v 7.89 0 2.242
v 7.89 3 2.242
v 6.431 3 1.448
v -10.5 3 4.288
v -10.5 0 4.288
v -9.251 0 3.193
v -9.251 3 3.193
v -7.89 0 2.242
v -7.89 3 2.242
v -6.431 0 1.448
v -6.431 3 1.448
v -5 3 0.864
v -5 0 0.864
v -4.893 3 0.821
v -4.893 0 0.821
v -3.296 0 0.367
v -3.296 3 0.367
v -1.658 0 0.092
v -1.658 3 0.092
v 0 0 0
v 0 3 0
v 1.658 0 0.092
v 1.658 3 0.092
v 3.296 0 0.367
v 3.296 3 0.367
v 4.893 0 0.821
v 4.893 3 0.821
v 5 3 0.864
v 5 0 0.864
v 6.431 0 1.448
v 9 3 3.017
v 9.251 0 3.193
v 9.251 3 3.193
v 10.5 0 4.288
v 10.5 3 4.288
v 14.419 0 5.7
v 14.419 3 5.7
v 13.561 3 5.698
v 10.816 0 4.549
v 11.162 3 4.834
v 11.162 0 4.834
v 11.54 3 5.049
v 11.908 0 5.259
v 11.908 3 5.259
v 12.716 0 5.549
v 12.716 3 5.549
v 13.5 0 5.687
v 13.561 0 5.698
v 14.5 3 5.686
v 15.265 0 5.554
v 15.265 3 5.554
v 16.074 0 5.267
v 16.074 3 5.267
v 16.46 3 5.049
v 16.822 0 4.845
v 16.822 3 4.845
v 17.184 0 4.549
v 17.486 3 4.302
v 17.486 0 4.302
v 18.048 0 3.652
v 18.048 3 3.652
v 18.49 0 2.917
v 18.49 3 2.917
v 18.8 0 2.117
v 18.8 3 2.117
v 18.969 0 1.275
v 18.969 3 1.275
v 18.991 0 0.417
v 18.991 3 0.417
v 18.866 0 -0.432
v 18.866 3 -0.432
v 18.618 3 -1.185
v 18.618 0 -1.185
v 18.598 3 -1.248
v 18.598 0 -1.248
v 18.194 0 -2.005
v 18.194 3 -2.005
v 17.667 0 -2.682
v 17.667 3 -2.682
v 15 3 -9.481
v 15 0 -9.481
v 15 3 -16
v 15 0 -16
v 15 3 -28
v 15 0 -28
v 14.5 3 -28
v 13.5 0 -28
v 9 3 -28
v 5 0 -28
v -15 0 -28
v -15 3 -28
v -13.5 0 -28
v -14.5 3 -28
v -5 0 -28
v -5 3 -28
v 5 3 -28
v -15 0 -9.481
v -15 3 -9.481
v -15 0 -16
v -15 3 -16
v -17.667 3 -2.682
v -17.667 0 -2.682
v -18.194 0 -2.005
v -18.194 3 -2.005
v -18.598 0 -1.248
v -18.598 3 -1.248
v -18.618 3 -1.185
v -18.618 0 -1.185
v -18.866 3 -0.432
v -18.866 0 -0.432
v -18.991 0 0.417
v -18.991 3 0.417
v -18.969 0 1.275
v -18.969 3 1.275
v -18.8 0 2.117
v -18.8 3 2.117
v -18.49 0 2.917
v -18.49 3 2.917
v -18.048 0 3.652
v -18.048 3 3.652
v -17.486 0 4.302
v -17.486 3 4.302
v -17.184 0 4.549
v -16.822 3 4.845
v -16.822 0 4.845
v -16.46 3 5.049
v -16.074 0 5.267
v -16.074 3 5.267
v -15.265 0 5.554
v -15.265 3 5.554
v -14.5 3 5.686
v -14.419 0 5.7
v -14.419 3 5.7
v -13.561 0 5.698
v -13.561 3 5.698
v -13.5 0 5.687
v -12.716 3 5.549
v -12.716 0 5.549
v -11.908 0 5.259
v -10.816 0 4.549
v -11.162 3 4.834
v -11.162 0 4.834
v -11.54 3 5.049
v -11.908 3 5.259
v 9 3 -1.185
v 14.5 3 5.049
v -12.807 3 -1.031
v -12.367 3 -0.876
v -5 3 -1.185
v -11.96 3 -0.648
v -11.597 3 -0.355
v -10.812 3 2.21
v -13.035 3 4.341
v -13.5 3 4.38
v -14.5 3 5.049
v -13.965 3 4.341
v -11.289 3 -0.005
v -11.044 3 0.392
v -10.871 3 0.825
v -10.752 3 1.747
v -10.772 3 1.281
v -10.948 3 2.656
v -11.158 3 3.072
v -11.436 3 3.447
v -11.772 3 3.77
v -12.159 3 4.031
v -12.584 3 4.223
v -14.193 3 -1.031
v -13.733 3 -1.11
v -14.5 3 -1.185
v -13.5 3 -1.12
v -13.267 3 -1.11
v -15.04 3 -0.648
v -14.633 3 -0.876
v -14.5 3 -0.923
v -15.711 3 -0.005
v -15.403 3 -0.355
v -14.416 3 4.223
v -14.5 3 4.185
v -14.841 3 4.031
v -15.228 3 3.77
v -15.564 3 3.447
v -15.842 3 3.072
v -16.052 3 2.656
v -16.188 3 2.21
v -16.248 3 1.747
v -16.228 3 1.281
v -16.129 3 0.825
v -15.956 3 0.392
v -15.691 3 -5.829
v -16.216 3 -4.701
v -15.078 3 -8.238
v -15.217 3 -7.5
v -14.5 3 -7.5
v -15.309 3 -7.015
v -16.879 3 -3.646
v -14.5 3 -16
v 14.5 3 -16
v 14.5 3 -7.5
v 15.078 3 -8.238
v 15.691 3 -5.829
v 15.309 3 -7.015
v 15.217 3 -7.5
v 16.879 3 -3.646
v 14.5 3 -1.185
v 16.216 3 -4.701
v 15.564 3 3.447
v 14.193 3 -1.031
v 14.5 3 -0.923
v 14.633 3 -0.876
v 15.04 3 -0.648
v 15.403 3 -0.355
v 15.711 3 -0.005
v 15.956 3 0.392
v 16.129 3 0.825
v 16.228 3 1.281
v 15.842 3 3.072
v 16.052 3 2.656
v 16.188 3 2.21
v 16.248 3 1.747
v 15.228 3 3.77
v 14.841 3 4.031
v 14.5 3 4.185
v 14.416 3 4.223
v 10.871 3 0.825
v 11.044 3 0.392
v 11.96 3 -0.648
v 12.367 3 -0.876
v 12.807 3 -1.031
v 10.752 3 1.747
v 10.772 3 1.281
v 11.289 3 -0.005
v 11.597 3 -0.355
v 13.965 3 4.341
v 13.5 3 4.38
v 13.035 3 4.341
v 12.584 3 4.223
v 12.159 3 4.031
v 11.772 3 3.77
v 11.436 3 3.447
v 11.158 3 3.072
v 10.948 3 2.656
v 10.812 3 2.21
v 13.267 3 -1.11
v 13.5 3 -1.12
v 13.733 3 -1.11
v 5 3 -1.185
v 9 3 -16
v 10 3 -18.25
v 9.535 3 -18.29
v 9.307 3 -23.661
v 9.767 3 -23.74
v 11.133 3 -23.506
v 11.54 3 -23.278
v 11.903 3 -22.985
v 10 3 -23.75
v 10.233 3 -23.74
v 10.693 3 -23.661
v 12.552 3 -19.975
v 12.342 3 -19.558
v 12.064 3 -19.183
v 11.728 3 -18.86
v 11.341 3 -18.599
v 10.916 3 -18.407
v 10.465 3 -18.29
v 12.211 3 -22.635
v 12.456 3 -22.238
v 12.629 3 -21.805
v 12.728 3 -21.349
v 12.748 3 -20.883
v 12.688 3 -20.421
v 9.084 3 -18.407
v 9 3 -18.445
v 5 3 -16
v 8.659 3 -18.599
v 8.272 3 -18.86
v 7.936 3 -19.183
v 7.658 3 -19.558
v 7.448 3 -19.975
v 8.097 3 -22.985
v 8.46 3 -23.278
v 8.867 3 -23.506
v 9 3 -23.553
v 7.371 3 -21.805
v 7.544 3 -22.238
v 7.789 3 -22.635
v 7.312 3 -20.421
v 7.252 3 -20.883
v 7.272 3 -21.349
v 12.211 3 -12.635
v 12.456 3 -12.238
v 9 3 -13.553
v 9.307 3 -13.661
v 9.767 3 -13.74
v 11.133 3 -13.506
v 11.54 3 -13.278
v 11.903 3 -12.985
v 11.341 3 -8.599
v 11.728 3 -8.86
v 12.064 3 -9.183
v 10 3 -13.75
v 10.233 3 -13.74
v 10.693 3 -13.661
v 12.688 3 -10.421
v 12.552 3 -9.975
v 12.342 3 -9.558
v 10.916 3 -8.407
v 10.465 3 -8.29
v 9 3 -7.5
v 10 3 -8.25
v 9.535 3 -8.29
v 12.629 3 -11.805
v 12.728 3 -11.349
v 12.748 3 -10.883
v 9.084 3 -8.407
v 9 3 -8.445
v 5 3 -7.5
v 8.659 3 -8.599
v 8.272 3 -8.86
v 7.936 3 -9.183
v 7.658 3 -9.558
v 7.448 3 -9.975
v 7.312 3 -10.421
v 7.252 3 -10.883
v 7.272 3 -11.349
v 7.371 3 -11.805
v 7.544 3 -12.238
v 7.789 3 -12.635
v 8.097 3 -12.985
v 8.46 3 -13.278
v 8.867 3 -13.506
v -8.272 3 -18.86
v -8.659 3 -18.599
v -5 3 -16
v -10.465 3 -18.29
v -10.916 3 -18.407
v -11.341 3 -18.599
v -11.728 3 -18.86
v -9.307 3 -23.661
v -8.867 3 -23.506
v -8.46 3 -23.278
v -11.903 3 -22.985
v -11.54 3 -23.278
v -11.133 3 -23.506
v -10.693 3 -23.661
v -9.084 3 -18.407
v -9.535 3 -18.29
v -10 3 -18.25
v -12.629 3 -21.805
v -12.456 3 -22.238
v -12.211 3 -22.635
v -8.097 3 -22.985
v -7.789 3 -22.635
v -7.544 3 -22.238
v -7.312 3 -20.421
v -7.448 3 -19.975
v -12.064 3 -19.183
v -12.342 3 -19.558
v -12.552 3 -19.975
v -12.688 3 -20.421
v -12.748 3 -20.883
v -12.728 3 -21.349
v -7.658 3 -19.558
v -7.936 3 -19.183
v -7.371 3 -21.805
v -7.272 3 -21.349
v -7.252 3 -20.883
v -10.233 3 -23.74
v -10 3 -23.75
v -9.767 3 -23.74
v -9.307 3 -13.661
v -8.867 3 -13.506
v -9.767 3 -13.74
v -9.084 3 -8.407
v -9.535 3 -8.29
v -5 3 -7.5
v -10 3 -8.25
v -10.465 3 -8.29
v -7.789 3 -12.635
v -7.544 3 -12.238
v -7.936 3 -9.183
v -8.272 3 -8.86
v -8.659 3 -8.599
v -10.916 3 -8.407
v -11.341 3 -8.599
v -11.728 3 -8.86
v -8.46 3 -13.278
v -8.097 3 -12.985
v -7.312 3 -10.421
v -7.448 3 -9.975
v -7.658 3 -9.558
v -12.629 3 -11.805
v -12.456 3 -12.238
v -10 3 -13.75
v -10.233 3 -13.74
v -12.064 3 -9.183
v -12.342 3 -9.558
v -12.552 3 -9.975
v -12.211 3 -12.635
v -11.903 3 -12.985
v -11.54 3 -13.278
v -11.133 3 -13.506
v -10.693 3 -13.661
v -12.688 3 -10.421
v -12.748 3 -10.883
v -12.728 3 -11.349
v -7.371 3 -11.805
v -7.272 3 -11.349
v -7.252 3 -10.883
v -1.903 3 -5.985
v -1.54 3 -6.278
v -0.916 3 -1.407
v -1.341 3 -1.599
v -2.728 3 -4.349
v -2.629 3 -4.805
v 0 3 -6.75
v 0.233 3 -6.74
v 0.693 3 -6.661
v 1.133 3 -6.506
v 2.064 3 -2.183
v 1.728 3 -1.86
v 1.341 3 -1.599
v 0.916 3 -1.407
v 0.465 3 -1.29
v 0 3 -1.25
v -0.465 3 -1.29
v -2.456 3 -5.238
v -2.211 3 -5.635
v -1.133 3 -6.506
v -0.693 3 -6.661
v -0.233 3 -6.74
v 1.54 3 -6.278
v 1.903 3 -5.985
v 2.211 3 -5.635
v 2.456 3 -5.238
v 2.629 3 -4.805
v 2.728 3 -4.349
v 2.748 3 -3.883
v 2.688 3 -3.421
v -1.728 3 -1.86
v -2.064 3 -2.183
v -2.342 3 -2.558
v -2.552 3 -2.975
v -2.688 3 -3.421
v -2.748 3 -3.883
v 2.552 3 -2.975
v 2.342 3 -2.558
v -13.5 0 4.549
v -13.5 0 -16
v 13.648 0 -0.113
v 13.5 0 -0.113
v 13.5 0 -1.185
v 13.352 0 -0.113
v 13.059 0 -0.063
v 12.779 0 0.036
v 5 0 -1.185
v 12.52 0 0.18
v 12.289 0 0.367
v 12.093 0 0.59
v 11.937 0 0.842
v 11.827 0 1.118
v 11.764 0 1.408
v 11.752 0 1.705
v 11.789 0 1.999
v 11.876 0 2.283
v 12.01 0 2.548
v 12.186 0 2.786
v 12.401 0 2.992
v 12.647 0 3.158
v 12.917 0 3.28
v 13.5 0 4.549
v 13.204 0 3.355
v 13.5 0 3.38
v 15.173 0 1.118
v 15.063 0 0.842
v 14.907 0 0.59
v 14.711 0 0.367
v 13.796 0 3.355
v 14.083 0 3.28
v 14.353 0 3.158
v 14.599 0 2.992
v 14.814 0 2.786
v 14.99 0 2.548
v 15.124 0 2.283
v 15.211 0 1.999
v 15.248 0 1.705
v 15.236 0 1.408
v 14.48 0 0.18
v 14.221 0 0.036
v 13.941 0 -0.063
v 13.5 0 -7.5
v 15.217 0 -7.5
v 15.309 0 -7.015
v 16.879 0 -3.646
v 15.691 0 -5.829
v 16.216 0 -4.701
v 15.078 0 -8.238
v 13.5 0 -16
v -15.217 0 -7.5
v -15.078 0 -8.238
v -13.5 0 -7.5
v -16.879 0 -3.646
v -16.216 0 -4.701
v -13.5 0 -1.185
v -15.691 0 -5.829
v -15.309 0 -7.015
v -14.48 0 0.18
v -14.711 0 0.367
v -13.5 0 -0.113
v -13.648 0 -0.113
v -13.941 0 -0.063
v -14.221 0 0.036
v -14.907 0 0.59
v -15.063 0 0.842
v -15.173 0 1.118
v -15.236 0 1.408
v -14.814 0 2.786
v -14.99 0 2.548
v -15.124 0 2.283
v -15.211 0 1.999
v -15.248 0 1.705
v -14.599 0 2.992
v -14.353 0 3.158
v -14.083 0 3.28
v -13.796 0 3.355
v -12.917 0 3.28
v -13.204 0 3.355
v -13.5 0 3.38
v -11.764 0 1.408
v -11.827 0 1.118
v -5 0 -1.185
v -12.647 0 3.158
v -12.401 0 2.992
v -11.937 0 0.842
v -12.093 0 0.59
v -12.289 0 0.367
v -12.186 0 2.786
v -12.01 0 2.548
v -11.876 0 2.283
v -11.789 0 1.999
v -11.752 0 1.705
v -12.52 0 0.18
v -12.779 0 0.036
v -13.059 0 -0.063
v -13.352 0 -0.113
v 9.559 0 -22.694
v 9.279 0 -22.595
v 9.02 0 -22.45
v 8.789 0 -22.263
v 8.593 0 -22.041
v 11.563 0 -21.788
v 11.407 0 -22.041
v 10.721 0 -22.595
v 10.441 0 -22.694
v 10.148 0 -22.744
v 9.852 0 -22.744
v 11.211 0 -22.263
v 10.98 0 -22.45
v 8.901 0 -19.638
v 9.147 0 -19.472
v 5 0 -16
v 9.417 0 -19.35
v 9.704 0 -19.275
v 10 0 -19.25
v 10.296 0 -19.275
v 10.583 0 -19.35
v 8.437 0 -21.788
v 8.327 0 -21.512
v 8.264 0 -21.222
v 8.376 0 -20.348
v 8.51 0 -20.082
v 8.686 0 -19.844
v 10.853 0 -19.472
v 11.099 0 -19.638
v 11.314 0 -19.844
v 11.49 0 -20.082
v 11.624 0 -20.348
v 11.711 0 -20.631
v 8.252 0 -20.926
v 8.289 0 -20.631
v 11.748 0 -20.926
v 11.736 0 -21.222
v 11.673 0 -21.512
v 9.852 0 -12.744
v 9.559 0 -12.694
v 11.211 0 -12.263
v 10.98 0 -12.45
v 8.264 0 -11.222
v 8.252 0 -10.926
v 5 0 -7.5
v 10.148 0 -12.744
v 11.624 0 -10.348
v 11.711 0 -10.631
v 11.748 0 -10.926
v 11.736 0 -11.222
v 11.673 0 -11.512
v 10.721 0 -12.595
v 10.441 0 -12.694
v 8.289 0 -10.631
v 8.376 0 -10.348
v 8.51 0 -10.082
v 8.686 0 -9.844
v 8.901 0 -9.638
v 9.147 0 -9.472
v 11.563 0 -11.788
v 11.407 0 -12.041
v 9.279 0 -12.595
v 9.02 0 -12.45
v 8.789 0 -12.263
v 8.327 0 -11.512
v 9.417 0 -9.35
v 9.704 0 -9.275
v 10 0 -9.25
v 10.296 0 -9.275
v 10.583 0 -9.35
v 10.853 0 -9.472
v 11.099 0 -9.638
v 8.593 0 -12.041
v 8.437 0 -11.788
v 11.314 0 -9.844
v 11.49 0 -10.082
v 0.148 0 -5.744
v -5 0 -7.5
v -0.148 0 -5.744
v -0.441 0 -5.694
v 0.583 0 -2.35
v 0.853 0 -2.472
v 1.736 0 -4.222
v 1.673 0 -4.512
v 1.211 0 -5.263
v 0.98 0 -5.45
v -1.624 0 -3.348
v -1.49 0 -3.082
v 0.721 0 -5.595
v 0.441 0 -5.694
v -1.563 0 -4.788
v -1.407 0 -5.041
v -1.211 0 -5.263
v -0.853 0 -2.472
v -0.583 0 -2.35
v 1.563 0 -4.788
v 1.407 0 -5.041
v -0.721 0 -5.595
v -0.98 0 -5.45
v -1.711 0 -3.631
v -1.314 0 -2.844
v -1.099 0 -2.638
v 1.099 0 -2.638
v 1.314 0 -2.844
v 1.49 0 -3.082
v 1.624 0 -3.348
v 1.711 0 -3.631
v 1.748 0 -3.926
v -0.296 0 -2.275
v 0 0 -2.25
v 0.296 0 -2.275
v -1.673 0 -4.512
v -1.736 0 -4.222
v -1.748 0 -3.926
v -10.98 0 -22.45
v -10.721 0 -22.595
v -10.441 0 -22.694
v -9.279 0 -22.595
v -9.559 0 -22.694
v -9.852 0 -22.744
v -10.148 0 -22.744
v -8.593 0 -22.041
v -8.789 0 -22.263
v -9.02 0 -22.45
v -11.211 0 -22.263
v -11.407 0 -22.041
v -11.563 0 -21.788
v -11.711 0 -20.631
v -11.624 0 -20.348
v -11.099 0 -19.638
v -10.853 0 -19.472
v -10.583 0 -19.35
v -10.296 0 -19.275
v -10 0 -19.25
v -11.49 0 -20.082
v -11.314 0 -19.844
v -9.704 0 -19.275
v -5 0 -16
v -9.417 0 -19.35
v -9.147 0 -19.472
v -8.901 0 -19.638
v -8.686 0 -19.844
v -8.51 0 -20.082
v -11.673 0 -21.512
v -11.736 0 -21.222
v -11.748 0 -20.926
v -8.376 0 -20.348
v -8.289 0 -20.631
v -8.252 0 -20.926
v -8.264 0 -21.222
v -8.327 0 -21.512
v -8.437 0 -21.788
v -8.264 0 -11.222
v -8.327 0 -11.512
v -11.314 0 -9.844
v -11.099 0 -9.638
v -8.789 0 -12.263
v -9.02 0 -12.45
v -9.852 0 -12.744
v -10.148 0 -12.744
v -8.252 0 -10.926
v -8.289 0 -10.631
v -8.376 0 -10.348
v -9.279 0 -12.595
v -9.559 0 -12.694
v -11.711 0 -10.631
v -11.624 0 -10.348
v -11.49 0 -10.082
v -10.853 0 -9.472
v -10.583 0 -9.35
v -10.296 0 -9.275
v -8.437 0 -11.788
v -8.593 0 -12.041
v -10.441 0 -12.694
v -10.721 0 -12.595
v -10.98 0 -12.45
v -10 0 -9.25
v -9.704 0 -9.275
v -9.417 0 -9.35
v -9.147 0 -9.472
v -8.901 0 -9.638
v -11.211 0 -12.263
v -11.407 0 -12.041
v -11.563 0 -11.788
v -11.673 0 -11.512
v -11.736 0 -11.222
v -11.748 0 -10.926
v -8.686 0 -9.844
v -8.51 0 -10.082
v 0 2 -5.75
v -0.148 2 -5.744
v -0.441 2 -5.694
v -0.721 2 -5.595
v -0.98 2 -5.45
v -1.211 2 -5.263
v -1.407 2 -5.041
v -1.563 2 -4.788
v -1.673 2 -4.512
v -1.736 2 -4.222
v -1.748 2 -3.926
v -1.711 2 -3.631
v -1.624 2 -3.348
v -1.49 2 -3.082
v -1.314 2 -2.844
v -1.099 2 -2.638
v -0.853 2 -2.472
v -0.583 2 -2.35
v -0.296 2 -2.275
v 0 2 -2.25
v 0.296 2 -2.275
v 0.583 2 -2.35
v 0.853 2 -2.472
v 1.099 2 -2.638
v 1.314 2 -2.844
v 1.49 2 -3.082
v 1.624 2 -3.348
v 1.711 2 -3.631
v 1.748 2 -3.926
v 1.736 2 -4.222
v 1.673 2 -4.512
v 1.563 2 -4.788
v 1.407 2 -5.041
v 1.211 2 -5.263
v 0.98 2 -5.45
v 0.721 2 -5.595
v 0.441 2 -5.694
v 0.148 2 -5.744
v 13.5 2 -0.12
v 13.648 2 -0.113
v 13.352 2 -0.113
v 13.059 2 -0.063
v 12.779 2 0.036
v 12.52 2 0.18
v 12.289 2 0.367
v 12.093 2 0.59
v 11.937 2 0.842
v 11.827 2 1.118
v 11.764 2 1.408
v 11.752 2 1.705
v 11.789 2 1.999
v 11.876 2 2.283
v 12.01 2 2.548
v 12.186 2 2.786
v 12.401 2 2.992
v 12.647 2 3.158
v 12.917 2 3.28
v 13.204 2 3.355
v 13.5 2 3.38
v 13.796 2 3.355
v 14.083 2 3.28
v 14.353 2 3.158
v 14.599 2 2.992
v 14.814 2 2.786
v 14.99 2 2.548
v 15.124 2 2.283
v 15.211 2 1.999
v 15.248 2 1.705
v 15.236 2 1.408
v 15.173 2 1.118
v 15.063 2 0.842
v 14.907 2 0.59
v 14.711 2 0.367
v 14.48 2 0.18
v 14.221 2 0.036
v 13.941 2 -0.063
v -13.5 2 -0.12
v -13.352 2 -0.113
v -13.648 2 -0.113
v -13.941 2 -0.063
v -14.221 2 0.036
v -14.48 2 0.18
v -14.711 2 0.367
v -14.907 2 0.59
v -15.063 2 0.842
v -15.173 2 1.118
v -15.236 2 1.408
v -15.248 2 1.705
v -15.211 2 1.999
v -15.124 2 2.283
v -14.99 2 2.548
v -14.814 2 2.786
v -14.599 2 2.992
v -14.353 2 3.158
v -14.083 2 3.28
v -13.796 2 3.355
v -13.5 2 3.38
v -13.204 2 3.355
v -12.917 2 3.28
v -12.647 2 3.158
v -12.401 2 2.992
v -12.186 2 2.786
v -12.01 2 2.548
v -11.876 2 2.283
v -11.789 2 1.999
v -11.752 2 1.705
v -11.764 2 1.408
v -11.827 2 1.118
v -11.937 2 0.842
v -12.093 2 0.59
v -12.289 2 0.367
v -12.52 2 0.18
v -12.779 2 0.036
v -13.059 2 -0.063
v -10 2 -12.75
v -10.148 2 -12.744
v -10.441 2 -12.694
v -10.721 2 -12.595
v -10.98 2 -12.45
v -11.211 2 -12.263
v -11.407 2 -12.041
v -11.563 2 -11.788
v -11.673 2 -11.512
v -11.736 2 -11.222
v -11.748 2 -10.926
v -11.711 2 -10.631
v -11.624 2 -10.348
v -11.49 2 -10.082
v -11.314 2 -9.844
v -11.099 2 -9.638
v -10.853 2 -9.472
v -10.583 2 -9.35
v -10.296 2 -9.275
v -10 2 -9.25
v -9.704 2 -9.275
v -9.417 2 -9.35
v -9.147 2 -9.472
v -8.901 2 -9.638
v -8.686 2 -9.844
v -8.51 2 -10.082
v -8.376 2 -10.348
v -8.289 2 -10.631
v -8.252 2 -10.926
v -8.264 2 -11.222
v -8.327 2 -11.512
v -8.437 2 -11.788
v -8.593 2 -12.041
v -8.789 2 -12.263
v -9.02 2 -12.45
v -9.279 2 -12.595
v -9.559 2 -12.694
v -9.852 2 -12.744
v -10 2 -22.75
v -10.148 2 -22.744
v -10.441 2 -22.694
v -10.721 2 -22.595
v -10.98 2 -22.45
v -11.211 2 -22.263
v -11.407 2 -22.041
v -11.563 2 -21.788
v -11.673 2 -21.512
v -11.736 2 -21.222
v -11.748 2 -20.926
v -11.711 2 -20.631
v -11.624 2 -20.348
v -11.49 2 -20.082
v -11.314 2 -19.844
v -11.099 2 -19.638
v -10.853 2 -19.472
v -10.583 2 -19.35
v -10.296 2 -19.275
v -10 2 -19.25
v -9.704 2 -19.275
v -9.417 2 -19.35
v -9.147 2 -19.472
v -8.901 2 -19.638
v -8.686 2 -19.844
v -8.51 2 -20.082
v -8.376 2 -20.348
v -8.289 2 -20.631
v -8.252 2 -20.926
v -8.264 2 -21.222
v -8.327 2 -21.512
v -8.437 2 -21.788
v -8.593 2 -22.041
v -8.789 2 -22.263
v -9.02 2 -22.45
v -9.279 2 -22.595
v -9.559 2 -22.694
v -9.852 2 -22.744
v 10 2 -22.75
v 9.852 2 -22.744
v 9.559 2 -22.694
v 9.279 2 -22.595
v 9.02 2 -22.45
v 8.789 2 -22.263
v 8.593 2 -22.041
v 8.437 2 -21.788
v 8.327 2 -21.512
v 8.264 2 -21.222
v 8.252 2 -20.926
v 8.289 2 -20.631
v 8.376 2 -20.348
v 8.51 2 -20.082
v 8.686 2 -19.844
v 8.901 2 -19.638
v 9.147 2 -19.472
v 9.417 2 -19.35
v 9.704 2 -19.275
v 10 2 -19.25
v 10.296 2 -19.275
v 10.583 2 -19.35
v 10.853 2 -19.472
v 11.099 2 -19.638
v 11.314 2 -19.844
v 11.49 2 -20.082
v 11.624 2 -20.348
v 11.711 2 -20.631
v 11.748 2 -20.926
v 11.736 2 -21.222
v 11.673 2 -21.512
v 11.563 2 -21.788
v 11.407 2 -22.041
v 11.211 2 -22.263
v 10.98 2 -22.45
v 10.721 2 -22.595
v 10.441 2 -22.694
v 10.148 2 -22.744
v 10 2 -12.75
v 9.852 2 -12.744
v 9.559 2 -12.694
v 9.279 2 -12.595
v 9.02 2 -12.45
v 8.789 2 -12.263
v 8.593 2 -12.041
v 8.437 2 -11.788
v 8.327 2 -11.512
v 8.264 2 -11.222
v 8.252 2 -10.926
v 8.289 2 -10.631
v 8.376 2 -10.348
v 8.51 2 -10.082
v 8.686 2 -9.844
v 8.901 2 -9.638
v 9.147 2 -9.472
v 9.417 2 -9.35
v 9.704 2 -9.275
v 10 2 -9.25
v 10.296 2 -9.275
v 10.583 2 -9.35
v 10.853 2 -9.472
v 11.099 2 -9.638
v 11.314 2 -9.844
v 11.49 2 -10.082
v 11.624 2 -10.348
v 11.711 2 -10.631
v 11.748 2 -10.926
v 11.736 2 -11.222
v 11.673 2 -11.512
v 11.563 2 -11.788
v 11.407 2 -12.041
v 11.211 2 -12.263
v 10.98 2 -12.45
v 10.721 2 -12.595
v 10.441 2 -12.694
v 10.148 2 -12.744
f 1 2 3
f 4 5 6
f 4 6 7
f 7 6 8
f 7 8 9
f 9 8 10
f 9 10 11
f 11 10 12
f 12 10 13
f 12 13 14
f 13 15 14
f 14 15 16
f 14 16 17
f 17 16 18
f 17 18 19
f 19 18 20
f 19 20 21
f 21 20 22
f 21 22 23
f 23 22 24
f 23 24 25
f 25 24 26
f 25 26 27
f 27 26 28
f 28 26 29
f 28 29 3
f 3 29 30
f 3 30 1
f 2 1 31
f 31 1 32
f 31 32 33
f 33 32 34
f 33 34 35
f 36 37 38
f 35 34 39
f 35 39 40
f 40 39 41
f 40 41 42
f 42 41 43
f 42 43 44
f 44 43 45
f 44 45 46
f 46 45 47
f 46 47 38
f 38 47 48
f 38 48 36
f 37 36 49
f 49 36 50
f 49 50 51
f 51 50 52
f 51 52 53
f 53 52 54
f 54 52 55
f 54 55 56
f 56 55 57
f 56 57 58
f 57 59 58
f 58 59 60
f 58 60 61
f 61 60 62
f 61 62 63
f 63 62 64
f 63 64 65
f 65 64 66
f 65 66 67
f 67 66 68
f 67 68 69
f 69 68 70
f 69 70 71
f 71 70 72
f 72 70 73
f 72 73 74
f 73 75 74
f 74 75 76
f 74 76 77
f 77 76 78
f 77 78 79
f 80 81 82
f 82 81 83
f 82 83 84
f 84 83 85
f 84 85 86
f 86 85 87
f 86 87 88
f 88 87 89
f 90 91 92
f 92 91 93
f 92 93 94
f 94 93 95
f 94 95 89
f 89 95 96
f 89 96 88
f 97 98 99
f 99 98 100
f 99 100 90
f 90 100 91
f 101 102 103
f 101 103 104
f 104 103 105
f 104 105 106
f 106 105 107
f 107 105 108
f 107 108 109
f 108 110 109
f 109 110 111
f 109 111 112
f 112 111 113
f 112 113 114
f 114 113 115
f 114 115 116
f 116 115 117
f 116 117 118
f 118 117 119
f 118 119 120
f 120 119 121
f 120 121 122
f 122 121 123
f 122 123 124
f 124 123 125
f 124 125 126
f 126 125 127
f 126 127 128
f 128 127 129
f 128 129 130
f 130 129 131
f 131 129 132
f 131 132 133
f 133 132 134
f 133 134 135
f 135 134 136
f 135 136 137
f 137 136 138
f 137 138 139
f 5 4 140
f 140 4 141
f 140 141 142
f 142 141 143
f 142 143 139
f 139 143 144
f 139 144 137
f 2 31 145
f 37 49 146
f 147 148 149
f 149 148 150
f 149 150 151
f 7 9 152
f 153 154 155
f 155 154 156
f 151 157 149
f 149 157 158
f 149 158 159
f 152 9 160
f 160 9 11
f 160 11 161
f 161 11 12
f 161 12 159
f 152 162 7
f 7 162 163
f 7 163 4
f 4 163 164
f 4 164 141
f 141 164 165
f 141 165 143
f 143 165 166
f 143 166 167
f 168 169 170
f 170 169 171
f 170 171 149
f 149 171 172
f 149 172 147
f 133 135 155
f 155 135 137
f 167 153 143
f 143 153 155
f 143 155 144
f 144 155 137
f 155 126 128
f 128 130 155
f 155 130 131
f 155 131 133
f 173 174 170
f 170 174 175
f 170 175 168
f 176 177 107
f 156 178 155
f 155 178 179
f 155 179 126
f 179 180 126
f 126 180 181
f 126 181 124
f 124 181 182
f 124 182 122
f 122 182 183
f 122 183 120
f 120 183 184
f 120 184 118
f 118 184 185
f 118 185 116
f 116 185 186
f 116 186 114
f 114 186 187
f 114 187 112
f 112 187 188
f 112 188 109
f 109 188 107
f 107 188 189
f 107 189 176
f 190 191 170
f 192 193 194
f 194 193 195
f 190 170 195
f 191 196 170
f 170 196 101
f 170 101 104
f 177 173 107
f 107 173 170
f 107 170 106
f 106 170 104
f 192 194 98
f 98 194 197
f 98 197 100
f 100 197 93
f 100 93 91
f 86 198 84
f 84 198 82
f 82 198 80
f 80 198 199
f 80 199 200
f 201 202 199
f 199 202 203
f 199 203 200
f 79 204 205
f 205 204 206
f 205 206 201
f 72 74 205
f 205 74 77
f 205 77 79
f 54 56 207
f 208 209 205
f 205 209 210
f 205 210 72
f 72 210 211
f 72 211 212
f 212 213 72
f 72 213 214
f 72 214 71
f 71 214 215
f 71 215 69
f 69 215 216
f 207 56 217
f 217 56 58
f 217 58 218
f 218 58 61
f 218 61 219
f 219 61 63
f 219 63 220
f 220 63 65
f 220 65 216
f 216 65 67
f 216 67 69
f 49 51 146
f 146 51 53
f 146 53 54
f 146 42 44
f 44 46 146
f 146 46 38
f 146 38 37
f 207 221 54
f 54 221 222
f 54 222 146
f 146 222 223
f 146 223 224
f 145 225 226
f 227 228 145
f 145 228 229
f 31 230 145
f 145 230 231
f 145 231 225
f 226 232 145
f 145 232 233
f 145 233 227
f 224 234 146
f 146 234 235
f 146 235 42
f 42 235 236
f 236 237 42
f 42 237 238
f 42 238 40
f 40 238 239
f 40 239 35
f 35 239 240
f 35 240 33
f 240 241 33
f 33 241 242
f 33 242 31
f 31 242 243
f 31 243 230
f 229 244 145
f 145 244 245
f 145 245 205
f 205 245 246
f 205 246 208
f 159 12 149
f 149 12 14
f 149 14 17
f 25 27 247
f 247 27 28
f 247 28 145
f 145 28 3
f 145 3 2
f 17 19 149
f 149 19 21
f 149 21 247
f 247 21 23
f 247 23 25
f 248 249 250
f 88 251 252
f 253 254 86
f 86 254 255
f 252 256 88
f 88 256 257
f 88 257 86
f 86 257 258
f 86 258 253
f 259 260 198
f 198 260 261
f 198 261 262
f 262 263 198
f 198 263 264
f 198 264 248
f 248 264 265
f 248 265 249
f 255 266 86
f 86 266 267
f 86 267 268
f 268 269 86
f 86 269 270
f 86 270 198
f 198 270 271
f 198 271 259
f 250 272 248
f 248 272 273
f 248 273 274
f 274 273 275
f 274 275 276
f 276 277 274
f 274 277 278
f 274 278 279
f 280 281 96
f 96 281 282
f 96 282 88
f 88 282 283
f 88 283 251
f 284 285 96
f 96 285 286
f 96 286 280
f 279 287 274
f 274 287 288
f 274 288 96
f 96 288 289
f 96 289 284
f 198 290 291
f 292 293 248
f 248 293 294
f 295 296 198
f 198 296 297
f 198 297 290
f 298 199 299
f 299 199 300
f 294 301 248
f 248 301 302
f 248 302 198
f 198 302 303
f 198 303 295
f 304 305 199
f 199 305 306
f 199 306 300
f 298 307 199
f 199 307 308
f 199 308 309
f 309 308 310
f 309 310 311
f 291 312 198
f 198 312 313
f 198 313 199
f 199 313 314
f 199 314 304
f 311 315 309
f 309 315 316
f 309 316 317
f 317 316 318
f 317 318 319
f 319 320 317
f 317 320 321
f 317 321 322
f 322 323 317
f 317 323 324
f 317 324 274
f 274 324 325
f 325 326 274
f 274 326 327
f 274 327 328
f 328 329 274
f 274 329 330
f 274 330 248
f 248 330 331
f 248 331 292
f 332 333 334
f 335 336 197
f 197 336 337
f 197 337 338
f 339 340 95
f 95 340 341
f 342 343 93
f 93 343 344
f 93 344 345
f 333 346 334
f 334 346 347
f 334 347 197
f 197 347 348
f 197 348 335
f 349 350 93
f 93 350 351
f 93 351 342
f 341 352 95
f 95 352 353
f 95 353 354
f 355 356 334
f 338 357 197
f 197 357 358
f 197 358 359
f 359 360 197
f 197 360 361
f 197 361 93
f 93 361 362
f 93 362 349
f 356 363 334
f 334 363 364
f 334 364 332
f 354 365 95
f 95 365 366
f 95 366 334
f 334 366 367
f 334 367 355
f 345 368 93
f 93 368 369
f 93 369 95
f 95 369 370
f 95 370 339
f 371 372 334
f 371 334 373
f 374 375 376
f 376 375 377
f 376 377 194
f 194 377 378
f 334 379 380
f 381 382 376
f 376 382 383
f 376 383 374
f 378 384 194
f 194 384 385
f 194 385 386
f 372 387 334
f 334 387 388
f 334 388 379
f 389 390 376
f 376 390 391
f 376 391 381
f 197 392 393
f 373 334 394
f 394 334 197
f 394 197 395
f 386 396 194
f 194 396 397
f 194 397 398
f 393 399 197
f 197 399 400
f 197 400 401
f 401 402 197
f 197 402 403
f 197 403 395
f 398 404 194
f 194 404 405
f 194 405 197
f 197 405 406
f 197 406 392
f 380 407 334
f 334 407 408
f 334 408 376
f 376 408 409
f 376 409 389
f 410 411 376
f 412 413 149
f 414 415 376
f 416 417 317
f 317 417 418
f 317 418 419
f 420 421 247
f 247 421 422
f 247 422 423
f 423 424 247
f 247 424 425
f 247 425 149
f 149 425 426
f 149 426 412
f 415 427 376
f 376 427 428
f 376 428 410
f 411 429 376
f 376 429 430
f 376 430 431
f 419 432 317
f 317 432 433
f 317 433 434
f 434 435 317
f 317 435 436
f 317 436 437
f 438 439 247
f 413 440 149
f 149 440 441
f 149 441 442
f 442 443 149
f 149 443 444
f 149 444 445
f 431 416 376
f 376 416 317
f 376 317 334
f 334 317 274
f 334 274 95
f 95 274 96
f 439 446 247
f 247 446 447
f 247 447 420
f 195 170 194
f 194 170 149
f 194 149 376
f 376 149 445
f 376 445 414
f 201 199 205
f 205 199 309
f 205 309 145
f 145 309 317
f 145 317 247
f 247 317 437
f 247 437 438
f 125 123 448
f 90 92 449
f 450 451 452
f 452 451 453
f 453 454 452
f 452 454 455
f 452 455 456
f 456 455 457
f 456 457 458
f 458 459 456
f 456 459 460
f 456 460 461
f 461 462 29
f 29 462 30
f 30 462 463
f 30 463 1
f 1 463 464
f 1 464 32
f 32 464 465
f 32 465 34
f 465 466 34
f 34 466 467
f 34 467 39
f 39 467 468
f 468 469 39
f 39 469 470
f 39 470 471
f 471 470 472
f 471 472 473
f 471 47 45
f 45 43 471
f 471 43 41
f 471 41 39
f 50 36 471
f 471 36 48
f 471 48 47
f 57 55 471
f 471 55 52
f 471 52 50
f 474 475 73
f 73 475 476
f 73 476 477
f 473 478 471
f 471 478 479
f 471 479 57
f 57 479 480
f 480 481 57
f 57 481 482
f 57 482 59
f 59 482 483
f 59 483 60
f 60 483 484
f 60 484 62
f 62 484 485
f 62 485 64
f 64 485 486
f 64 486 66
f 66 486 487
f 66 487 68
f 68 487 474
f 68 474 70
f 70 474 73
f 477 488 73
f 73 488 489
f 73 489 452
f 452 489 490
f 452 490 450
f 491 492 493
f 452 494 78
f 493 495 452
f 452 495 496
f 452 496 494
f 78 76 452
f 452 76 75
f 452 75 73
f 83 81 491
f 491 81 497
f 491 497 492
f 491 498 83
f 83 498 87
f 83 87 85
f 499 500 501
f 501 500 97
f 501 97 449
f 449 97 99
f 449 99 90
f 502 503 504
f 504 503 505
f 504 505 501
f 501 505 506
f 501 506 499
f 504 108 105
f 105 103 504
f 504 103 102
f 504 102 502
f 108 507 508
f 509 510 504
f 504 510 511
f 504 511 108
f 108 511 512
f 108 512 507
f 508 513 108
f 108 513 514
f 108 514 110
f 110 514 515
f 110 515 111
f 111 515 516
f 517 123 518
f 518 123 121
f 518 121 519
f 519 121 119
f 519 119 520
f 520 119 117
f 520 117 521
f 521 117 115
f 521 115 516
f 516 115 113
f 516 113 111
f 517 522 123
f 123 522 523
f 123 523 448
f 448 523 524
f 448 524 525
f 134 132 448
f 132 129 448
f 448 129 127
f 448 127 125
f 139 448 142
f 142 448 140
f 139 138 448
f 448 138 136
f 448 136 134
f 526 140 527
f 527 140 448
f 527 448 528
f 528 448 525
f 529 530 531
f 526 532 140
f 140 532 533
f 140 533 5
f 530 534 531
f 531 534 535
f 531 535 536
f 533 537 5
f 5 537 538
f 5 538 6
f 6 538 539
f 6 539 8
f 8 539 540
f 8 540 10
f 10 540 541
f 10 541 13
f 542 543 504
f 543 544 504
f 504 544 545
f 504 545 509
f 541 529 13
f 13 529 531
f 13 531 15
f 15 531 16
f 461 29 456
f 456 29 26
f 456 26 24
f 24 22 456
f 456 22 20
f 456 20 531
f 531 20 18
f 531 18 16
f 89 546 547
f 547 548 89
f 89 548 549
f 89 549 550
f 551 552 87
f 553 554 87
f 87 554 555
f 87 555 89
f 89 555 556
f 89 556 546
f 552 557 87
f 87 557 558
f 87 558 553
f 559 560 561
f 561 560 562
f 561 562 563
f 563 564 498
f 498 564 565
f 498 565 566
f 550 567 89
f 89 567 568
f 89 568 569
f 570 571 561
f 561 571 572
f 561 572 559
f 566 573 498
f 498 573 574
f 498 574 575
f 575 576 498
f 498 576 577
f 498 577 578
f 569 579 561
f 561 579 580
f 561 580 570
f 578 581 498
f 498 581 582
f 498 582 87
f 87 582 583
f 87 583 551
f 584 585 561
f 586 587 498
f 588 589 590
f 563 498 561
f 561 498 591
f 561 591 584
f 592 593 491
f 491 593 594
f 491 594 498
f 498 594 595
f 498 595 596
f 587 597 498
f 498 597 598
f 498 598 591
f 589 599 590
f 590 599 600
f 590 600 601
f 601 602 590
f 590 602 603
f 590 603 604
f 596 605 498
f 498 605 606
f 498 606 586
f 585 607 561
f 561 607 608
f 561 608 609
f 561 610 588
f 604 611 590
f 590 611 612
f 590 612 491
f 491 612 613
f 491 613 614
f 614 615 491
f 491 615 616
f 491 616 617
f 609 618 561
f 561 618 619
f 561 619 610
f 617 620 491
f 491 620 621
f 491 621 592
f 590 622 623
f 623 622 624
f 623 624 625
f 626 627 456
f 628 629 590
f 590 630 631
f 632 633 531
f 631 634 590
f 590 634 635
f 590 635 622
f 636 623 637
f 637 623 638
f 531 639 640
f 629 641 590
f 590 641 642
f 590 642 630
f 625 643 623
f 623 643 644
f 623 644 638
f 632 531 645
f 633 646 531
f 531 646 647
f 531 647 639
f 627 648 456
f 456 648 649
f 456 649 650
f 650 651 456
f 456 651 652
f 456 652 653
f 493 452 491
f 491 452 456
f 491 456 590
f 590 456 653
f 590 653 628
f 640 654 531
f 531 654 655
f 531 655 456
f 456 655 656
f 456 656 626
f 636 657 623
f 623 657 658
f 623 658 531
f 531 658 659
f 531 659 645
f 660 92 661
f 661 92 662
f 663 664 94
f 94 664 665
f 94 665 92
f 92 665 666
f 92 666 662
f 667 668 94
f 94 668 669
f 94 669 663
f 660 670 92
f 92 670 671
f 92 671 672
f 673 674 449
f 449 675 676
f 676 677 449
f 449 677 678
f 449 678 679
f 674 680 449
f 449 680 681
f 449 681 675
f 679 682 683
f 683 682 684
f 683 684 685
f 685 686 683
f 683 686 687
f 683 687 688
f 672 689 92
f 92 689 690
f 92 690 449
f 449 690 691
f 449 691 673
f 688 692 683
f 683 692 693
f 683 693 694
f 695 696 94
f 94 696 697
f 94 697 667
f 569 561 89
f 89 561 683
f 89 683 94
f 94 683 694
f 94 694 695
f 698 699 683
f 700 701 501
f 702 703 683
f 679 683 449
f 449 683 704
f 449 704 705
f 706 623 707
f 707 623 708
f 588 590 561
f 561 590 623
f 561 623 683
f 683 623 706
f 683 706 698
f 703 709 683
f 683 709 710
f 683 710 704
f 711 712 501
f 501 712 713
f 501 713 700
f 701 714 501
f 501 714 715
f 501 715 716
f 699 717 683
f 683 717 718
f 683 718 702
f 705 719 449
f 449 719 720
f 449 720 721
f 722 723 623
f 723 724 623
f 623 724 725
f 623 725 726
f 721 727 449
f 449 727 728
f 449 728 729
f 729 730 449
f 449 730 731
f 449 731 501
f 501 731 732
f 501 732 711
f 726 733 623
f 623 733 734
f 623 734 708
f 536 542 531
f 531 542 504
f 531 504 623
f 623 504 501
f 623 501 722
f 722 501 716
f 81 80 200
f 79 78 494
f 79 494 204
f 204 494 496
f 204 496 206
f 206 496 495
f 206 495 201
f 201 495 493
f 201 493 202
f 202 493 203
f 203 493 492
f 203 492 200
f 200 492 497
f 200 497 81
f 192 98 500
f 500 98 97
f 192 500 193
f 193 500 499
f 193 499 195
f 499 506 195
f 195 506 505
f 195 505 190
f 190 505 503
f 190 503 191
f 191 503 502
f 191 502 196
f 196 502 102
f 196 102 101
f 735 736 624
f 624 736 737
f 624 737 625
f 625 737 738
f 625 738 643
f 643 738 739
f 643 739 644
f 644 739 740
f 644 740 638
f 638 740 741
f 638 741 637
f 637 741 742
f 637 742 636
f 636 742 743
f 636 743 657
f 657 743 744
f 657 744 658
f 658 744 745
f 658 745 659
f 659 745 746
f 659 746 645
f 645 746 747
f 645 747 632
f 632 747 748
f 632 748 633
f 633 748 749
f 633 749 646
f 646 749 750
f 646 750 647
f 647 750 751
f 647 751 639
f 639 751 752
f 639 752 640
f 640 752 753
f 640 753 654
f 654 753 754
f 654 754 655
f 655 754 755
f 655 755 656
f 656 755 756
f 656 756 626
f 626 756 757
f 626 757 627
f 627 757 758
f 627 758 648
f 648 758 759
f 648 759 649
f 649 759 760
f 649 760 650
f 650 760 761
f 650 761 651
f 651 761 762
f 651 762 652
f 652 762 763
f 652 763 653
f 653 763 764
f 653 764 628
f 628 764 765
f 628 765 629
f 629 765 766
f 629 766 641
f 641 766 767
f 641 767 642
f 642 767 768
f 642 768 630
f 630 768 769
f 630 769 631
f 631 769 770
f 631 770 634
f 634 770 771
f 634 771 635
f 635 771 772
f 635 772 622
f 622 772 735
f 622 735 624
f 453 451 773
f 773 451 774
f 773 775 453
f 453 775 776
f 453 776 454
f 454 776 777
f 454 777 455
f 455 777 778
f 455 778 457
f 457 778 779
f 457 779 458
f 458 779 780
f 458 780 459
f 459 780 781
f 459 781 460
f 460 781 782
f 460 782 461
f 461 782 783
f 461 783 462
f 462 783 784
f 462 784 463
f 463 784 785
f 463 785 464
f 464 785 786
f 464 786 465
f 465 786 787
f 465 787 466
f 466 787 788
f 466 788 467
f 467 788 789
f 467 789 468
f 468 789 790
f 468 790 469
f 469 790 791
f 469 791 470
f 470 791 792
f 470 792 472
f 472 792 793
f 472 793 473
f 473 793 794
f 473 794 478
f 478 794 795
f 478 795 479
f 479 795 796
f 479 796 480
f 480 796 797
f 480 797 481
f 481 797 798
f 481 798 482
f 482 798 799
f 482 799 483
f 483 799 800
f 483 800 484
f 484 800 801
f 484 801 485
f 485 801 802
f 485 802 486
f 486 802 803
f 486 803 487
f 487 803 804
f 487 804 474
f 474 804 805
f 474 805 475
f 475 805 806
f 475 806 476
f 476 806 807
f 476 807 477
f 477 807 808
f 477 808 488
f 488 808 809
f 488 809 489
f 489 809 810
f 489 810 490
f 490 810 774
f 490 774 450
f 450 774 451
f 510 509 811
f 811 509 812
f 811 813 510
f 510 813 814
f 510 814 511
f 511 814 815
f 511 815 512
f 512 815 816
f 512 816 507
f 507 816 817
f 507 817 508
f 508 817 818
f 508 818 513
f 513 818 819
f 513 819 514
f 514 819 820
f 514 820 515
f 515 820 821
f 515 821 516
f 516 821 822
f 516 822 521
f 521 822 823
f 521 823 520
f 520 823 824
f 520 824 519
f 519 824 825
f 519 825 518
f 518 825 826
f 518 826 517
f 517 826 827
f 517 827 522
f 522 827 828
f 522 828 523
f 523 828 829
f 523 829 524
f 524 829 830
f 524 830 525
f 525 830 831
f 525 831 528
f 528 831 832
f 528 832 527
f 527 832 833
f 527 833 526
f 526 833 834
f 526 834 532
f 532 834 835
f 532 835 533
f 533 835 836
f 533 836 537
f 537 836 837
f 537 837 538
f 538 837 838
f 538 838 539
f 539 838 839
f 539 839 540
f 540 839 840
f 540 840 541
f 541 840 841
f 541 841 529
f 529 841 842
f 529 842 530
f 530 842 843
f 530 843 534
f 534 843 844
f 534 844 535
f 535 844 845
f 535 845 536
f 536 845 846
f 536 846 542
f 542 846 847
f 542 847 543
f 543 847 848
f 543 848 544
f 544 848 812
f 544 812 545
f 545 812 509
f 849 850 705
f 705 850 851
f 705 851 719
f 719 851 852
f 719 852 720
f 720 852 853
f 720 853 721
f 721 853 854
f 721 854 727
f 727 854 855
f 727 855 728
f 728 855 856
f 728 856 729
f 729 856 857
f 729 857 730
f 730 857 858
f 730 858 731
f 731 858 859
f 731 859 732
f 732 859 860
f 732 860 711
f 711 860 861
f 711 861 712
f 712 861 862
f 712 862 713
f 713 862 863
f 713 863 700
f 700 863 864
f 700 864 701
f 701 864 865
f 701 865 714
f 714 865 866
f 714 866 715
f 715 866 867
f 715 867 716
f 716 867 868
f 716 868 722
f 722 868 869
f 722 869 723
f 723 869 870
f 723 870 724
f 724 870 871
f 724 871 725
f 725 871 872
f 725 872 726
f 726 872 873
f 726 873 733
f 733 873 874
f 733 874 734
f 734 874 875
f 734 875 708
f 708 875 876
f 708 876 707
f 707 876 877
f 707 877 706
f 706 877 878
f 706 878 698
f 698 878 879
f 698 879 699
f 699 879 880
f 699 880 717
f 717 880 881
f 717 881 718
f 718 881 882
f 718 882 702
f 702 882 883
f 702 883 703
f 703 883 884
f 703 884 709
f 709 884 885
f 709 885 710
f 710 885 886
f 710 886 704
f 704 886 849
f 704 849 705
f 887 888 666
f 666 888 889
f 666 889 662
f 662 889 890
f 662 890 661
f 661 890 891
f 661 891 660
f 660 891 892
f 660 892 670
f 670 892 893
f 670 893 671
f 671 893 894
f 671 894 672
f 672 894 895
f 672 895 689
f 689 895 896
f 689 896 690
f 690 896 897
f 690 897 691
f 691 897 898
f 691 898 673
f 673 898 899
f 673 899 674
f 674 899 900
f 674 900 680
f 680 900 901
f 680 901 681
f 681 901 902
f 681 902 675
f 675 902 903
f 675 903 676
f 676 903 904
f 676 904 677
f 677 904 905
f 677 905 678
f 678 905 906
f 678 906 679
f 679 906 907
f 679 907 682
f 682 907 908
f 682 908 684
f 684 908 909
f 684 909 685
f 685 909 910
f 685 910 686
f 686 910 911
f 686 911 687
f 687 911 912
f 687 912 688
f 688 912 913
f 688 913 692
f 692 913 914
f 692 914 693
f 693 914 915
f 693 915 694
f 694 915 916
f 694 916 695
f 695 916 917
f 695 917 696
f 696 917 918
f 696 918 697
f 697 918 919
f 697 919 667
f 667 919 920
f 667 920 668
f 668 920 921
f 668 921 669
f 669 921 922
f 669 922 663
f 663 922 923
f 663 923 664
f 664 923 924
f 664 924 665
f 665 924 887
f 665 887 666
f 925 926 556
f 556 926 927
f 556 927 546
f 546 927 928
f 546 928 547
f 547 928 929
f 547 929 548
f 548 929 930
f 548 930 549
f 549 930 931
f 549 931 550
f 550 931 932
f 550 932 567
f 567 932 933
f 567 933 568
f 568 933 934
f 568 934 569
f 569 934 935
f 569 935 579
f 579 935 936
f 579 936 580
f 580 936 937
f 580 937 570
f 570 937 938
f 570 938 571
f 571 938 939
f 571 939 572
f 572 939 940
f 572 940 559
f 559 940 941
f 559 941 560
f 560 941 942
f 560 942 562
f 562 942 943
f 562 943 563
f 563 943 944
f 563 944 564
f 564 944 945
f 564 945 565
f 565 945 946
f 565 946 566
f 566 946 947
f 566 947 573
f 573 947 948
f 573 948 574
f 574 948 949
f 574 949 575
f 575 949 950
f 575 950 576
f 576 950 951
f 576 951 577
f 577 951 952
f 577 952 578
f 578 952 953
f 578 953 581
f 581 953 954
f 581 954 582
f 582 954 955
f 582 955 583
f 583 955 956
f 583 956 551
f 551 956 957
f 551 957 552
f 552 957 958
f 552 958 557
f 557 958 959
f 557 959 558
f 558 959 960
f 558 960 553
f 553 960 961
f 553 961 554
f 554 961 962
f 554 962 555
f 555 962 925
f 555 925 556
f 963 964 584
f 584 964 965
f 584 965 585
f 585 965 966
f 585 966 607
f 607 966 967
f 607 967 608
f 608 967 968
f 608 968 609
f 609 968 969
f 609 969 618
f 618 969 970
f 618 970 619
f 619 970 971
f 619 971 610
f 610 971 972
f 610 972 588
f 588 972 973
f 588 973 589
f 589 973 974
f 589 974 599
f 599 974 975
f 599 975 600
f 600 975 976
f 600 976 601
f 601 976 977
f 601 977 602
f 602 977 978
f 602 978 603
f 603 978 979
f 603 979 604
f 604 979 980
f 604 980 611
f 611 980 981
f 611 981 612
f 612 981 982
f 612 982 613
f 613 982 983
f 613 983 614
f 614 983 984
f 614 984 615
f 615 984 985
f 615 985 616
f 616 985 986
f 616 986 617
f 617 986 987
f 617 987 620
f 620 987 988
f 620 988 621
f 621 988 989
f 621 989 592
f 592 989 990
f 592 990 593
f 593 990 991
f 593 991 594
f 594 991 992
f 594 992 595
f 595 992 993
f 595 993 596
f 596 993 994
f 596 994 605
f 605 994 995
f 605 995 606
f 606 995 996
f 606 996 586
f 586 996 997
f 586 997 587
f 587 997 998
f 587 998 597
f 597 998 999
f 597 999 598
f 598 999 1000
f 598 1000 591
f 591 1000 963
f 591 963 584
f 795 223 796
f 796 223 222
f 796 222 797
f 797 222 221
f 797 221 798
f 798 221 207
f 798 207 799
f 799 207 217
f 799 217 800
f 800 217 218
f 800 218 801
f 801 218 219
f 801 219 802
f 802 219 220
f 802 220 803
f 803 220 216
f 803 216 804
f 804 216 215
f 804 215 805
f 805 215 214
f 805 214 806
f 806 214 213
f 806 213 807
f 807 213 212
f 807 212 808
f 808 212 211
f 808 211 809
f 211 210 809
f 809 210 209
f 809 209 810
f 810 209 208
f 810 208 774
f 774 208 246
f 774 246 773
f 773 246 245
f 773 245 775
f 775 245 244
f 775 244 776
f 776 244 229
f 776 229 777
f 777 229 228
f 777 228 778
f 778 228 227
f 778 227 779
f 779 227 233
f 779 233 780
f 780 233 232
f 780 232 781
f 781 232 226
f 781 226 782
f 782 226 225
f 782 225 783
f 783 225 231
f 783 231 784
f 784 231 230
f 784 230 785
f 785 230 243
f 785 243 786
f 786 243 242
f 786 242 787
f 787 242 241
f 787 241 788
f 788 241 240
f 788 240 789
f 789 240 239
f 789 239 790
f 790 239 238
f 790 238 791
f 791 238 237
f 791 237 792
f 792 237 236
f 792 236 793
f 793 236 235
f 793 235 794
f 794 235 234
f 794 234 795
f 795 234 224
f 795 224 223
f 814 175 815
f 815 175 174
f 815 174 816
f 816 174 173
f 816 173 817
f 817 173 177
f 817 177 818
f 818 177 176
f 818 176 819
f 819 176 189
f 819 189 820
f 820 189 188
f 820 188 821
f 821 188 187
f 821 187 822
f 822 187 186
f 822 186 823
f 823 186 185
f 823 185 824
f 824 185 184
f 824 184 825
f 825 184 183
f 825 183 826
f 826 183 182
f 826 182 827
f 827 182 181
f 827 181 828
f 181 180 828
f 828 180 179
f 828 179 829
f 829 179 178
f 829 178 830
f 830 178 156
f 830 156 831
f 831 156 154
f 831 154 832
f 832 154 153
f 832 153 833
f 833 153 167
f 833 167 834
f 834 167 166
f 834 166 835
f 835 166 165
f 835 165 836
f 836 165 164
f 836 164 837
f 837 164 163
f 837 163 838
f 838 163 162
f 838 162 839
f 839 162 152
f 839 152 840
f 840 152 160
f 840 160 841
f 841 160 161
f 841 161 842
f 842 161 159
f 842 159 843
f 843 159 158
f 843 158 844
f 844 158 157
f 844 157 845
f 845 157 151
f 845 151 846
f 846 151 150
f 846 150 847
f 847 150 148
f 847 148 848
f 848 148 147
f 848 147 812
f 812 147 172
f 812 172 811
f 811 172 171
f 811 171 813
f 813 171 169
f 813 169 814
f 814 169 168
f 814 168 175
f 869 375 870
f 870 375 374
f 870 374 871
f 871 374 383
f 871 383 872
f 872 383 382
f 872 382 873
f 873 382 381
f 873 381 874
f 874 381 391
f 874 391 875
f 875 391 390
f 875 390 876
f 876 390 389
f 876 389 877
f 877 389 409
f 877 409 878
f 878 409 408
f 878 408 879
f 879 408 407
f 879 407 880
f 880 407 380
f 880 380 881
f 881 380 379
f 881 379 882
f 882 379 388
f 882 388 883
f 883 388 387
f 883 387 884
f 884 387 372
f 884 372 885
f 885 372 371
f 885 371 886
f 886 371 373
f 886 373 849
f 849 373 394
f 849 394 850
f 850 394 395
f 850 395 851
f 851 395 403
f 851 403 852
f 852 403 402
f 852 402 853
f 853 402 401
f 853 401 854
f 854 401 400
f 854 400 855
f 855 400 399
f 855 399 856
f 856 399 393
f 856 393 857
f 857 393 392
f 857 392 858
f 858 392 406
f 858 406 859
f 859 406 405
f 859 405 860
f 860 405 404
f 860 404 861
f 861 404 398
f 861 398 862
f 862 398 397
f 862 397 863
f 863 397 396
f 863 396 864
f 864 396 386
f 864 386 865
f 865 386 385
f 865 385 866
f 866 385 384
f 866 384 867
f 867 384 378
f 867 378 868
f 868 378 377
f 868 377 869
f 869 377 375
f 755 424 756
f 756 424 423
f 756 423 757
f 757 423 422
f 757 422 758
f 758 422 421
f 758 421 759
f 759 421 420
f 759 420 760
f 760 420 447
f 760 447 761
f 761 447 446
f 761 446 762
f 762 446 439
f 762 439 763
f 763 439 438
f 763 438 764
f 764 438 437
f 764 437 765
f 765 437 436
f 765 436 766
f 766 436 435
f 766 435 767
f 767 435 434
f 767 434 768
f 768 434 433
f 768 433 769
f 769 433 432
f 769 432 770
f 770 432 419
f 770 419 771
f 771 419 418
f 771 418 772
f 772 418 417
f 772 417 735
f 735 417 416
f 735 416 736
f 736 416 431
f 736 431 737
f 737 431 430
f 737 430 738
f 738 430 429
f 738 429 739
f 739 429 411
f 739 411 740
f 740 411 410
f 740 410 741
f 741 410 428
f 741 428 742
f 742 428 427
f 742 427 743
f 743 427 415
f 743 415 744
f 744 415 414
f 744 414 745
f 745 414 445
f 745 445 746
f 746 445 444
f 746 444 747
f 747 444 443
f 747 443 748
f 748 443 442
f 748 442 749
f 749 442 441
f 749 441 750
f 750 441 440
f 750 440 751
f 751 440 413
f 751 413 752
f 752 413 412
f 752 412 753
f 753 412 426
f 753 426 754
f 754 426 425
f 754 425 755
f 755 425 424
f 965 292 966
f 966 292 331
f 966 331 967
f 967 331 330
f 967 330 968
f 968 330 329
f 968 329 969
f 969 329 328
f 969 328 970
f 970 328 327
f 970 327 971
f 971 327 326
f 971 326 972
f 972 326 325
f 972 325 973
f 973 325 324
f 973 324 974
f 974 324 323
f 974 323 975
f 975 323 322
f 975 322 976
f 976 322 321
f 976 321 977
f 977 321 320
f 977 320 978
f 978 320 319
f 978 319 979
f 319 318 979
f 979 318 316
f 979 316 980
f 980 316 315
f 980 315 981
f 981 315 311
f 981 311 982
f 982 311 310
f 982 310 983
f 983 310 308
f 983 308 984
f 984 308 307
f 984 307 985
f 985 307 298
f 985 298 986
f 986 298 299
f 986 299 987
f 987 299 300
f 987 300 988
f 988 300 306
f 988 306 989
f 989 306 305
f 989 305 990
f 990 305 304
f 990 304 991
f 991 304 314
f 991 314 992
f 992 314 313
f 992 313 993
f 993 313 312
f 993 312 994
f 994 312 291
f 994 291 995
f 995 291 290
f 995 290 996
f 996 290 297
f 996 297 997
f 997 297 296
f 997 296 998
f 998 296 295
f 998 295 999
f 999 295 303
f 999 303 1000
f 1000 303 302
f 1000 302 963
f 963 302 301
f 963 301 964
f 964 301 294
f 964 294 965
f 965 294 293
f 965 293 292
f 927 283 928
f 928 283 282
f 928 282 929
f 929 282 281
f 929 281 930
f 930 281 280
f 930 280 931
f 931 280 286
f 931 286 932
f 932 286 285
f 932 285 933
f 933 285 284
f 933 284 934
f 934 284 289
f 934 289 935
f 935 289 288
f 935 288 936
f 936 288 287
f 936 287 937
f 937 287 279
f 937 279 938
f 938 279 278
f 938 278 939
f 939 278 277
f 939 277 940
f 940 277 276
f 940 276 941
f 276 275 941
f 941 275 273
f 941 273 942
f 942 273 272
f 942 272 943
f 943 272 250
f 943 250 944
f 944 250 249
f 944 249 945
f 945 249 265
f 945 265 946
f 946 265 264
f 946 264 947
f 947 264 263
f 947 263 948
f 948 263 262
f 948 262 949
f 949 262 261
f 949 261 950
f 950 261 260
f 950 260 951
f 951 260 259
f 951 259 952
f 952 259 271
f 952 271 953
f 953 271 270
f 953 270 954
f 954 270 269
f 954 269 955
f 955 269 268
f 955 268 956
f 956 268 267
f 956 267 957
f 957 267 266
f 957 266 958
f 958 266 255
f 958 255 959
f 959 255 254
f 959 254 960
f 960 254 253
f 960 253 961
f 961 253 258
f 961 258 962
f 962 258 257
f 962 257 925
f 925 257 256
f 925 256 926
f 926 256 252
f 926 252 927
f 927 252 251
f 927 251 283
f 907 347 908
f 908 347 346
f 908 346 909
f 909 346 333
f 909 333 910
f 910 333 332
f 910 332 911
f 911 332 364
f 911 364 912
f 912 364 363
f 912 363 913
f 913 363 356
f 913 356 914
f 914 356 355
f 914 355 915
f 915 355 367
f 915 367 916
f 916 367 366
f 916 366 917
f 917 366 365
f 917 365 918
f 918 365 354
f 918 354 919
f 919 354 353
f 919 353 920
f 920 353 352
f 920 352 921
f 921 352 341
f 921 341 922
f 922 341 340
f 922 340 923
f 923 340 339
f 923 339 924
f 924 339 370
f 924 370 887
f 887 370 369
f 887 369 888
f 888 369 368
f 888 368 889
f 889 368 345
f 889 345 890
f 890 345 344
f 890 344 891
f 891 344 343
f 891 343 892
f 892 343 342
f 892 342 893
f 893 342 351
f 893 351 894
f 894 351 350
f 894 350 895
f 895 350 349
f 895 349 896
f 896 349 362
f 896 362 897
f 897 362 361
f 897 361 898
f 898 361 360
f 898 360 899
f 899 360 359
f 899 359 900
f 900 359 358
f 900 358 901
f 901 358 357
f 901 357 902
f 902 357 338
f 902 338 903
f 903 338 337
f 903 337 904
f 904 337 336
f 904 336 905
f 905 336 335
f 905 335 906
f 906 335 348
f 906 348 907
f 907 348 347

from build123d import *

# Parameters (mm, degrees)
BOSS_EXTRUDE1_DEPTH = 3
FILLET1_R           = 10
SKETCH2_R           = 1.75
CUT_EXTRUDE1_DEPTH  = 34.970575503
CHAMFER1_SIZE       = 1


with BuildPart() as part:
    # Sketch1 → Boss-Extrude1 (new body)
    with BuildSketch(Plane(origin=(0, 0, 0), x_dir=(1, 0, 0), z_dir=(0, 1, 0))):
        with BuildLine():
            Line((-15, 4.181836343), (-15, 28))
            Line((-15, 28), (15, 28))
            Line((15, 28), (15, 4.181836343))
            ThreePointArc((15, 4.181836343), (18.415475947, -3.063112486), (10.5, -4.287857357))
            ThreePointArc((10.5, -4.287857357), (0, 0), (-10.5, -4.287857357))
            ThreePointArc((-10.5, -4.287857357), (-18.415475947, -3.063112486), (-15, 4.181836343))
        make_face()
    extrude(amount=BOSS_EXTRUDE1_DEPTH)

    # Fillet1
    fillet1_edges = [part.edges().sort_by_distance(p)[0] for p in [
        (-15, 1.5, -4.181836343),
        (15, 1.5, -4.181836343),
    ]]
    fillet(fillet1_edges, radius=FILLET1_R)

    # Sketch2 → Cut-Extrude1 (cut, through all)
    with BuildSketch(Plane(origin=(0, 3, 0), x_dir=(1, 0, 0), z_dir=(0, 1, 0))):
        with Locations(Location((0, 4, 0), (0, 0, 270))):
            Circle(SKETCH2_R)
        with Locations(Location((13.5, -1.630258043, 0), (0, 0, 270))):
            Circle(SKETCH2_R)
        with Locations(Location((-13.5, -1.630258043, 0), (0, 0, 270))):
            Circle(SKETCH2_R)
        with Locations(Location((-10, 11, 0), (0, 0, 270))):
            Circle(SKETCH2_R)
        with Locations(Location((-10, 21, 0), (0, 0, 270))):
            Circle(SKETCH2_R)
        with Locations(Location((10, 21, 0), (0, 0, 270))):
            Circle(SKETCH2_R)
        with Locations(Location((10, 11, 0), (0, 0, 270))):
            Circle(SKETCH2_R)
    extrude(amount=-CUT_EXTRUDE1_DEPTH, mode=Mode.SUBTRACT)

    # Chamfer1
    chamfer1_edges = [part.edges().sort_by_distance(p)[0] for p in [
        (0, 3, -5.75),
        (13.5, 3, -0.119741957),
        (-13.5, 3, -0.119741957),
        (-10, 3, -12.75),
        (-10, 3, -22.75),
        (10, 3, -22.75),
        (10, 3, -12.75),
    ]]
    chamfer(chamfer1_edges, length=CHAMFER1_SIZE)


solid = part.part
